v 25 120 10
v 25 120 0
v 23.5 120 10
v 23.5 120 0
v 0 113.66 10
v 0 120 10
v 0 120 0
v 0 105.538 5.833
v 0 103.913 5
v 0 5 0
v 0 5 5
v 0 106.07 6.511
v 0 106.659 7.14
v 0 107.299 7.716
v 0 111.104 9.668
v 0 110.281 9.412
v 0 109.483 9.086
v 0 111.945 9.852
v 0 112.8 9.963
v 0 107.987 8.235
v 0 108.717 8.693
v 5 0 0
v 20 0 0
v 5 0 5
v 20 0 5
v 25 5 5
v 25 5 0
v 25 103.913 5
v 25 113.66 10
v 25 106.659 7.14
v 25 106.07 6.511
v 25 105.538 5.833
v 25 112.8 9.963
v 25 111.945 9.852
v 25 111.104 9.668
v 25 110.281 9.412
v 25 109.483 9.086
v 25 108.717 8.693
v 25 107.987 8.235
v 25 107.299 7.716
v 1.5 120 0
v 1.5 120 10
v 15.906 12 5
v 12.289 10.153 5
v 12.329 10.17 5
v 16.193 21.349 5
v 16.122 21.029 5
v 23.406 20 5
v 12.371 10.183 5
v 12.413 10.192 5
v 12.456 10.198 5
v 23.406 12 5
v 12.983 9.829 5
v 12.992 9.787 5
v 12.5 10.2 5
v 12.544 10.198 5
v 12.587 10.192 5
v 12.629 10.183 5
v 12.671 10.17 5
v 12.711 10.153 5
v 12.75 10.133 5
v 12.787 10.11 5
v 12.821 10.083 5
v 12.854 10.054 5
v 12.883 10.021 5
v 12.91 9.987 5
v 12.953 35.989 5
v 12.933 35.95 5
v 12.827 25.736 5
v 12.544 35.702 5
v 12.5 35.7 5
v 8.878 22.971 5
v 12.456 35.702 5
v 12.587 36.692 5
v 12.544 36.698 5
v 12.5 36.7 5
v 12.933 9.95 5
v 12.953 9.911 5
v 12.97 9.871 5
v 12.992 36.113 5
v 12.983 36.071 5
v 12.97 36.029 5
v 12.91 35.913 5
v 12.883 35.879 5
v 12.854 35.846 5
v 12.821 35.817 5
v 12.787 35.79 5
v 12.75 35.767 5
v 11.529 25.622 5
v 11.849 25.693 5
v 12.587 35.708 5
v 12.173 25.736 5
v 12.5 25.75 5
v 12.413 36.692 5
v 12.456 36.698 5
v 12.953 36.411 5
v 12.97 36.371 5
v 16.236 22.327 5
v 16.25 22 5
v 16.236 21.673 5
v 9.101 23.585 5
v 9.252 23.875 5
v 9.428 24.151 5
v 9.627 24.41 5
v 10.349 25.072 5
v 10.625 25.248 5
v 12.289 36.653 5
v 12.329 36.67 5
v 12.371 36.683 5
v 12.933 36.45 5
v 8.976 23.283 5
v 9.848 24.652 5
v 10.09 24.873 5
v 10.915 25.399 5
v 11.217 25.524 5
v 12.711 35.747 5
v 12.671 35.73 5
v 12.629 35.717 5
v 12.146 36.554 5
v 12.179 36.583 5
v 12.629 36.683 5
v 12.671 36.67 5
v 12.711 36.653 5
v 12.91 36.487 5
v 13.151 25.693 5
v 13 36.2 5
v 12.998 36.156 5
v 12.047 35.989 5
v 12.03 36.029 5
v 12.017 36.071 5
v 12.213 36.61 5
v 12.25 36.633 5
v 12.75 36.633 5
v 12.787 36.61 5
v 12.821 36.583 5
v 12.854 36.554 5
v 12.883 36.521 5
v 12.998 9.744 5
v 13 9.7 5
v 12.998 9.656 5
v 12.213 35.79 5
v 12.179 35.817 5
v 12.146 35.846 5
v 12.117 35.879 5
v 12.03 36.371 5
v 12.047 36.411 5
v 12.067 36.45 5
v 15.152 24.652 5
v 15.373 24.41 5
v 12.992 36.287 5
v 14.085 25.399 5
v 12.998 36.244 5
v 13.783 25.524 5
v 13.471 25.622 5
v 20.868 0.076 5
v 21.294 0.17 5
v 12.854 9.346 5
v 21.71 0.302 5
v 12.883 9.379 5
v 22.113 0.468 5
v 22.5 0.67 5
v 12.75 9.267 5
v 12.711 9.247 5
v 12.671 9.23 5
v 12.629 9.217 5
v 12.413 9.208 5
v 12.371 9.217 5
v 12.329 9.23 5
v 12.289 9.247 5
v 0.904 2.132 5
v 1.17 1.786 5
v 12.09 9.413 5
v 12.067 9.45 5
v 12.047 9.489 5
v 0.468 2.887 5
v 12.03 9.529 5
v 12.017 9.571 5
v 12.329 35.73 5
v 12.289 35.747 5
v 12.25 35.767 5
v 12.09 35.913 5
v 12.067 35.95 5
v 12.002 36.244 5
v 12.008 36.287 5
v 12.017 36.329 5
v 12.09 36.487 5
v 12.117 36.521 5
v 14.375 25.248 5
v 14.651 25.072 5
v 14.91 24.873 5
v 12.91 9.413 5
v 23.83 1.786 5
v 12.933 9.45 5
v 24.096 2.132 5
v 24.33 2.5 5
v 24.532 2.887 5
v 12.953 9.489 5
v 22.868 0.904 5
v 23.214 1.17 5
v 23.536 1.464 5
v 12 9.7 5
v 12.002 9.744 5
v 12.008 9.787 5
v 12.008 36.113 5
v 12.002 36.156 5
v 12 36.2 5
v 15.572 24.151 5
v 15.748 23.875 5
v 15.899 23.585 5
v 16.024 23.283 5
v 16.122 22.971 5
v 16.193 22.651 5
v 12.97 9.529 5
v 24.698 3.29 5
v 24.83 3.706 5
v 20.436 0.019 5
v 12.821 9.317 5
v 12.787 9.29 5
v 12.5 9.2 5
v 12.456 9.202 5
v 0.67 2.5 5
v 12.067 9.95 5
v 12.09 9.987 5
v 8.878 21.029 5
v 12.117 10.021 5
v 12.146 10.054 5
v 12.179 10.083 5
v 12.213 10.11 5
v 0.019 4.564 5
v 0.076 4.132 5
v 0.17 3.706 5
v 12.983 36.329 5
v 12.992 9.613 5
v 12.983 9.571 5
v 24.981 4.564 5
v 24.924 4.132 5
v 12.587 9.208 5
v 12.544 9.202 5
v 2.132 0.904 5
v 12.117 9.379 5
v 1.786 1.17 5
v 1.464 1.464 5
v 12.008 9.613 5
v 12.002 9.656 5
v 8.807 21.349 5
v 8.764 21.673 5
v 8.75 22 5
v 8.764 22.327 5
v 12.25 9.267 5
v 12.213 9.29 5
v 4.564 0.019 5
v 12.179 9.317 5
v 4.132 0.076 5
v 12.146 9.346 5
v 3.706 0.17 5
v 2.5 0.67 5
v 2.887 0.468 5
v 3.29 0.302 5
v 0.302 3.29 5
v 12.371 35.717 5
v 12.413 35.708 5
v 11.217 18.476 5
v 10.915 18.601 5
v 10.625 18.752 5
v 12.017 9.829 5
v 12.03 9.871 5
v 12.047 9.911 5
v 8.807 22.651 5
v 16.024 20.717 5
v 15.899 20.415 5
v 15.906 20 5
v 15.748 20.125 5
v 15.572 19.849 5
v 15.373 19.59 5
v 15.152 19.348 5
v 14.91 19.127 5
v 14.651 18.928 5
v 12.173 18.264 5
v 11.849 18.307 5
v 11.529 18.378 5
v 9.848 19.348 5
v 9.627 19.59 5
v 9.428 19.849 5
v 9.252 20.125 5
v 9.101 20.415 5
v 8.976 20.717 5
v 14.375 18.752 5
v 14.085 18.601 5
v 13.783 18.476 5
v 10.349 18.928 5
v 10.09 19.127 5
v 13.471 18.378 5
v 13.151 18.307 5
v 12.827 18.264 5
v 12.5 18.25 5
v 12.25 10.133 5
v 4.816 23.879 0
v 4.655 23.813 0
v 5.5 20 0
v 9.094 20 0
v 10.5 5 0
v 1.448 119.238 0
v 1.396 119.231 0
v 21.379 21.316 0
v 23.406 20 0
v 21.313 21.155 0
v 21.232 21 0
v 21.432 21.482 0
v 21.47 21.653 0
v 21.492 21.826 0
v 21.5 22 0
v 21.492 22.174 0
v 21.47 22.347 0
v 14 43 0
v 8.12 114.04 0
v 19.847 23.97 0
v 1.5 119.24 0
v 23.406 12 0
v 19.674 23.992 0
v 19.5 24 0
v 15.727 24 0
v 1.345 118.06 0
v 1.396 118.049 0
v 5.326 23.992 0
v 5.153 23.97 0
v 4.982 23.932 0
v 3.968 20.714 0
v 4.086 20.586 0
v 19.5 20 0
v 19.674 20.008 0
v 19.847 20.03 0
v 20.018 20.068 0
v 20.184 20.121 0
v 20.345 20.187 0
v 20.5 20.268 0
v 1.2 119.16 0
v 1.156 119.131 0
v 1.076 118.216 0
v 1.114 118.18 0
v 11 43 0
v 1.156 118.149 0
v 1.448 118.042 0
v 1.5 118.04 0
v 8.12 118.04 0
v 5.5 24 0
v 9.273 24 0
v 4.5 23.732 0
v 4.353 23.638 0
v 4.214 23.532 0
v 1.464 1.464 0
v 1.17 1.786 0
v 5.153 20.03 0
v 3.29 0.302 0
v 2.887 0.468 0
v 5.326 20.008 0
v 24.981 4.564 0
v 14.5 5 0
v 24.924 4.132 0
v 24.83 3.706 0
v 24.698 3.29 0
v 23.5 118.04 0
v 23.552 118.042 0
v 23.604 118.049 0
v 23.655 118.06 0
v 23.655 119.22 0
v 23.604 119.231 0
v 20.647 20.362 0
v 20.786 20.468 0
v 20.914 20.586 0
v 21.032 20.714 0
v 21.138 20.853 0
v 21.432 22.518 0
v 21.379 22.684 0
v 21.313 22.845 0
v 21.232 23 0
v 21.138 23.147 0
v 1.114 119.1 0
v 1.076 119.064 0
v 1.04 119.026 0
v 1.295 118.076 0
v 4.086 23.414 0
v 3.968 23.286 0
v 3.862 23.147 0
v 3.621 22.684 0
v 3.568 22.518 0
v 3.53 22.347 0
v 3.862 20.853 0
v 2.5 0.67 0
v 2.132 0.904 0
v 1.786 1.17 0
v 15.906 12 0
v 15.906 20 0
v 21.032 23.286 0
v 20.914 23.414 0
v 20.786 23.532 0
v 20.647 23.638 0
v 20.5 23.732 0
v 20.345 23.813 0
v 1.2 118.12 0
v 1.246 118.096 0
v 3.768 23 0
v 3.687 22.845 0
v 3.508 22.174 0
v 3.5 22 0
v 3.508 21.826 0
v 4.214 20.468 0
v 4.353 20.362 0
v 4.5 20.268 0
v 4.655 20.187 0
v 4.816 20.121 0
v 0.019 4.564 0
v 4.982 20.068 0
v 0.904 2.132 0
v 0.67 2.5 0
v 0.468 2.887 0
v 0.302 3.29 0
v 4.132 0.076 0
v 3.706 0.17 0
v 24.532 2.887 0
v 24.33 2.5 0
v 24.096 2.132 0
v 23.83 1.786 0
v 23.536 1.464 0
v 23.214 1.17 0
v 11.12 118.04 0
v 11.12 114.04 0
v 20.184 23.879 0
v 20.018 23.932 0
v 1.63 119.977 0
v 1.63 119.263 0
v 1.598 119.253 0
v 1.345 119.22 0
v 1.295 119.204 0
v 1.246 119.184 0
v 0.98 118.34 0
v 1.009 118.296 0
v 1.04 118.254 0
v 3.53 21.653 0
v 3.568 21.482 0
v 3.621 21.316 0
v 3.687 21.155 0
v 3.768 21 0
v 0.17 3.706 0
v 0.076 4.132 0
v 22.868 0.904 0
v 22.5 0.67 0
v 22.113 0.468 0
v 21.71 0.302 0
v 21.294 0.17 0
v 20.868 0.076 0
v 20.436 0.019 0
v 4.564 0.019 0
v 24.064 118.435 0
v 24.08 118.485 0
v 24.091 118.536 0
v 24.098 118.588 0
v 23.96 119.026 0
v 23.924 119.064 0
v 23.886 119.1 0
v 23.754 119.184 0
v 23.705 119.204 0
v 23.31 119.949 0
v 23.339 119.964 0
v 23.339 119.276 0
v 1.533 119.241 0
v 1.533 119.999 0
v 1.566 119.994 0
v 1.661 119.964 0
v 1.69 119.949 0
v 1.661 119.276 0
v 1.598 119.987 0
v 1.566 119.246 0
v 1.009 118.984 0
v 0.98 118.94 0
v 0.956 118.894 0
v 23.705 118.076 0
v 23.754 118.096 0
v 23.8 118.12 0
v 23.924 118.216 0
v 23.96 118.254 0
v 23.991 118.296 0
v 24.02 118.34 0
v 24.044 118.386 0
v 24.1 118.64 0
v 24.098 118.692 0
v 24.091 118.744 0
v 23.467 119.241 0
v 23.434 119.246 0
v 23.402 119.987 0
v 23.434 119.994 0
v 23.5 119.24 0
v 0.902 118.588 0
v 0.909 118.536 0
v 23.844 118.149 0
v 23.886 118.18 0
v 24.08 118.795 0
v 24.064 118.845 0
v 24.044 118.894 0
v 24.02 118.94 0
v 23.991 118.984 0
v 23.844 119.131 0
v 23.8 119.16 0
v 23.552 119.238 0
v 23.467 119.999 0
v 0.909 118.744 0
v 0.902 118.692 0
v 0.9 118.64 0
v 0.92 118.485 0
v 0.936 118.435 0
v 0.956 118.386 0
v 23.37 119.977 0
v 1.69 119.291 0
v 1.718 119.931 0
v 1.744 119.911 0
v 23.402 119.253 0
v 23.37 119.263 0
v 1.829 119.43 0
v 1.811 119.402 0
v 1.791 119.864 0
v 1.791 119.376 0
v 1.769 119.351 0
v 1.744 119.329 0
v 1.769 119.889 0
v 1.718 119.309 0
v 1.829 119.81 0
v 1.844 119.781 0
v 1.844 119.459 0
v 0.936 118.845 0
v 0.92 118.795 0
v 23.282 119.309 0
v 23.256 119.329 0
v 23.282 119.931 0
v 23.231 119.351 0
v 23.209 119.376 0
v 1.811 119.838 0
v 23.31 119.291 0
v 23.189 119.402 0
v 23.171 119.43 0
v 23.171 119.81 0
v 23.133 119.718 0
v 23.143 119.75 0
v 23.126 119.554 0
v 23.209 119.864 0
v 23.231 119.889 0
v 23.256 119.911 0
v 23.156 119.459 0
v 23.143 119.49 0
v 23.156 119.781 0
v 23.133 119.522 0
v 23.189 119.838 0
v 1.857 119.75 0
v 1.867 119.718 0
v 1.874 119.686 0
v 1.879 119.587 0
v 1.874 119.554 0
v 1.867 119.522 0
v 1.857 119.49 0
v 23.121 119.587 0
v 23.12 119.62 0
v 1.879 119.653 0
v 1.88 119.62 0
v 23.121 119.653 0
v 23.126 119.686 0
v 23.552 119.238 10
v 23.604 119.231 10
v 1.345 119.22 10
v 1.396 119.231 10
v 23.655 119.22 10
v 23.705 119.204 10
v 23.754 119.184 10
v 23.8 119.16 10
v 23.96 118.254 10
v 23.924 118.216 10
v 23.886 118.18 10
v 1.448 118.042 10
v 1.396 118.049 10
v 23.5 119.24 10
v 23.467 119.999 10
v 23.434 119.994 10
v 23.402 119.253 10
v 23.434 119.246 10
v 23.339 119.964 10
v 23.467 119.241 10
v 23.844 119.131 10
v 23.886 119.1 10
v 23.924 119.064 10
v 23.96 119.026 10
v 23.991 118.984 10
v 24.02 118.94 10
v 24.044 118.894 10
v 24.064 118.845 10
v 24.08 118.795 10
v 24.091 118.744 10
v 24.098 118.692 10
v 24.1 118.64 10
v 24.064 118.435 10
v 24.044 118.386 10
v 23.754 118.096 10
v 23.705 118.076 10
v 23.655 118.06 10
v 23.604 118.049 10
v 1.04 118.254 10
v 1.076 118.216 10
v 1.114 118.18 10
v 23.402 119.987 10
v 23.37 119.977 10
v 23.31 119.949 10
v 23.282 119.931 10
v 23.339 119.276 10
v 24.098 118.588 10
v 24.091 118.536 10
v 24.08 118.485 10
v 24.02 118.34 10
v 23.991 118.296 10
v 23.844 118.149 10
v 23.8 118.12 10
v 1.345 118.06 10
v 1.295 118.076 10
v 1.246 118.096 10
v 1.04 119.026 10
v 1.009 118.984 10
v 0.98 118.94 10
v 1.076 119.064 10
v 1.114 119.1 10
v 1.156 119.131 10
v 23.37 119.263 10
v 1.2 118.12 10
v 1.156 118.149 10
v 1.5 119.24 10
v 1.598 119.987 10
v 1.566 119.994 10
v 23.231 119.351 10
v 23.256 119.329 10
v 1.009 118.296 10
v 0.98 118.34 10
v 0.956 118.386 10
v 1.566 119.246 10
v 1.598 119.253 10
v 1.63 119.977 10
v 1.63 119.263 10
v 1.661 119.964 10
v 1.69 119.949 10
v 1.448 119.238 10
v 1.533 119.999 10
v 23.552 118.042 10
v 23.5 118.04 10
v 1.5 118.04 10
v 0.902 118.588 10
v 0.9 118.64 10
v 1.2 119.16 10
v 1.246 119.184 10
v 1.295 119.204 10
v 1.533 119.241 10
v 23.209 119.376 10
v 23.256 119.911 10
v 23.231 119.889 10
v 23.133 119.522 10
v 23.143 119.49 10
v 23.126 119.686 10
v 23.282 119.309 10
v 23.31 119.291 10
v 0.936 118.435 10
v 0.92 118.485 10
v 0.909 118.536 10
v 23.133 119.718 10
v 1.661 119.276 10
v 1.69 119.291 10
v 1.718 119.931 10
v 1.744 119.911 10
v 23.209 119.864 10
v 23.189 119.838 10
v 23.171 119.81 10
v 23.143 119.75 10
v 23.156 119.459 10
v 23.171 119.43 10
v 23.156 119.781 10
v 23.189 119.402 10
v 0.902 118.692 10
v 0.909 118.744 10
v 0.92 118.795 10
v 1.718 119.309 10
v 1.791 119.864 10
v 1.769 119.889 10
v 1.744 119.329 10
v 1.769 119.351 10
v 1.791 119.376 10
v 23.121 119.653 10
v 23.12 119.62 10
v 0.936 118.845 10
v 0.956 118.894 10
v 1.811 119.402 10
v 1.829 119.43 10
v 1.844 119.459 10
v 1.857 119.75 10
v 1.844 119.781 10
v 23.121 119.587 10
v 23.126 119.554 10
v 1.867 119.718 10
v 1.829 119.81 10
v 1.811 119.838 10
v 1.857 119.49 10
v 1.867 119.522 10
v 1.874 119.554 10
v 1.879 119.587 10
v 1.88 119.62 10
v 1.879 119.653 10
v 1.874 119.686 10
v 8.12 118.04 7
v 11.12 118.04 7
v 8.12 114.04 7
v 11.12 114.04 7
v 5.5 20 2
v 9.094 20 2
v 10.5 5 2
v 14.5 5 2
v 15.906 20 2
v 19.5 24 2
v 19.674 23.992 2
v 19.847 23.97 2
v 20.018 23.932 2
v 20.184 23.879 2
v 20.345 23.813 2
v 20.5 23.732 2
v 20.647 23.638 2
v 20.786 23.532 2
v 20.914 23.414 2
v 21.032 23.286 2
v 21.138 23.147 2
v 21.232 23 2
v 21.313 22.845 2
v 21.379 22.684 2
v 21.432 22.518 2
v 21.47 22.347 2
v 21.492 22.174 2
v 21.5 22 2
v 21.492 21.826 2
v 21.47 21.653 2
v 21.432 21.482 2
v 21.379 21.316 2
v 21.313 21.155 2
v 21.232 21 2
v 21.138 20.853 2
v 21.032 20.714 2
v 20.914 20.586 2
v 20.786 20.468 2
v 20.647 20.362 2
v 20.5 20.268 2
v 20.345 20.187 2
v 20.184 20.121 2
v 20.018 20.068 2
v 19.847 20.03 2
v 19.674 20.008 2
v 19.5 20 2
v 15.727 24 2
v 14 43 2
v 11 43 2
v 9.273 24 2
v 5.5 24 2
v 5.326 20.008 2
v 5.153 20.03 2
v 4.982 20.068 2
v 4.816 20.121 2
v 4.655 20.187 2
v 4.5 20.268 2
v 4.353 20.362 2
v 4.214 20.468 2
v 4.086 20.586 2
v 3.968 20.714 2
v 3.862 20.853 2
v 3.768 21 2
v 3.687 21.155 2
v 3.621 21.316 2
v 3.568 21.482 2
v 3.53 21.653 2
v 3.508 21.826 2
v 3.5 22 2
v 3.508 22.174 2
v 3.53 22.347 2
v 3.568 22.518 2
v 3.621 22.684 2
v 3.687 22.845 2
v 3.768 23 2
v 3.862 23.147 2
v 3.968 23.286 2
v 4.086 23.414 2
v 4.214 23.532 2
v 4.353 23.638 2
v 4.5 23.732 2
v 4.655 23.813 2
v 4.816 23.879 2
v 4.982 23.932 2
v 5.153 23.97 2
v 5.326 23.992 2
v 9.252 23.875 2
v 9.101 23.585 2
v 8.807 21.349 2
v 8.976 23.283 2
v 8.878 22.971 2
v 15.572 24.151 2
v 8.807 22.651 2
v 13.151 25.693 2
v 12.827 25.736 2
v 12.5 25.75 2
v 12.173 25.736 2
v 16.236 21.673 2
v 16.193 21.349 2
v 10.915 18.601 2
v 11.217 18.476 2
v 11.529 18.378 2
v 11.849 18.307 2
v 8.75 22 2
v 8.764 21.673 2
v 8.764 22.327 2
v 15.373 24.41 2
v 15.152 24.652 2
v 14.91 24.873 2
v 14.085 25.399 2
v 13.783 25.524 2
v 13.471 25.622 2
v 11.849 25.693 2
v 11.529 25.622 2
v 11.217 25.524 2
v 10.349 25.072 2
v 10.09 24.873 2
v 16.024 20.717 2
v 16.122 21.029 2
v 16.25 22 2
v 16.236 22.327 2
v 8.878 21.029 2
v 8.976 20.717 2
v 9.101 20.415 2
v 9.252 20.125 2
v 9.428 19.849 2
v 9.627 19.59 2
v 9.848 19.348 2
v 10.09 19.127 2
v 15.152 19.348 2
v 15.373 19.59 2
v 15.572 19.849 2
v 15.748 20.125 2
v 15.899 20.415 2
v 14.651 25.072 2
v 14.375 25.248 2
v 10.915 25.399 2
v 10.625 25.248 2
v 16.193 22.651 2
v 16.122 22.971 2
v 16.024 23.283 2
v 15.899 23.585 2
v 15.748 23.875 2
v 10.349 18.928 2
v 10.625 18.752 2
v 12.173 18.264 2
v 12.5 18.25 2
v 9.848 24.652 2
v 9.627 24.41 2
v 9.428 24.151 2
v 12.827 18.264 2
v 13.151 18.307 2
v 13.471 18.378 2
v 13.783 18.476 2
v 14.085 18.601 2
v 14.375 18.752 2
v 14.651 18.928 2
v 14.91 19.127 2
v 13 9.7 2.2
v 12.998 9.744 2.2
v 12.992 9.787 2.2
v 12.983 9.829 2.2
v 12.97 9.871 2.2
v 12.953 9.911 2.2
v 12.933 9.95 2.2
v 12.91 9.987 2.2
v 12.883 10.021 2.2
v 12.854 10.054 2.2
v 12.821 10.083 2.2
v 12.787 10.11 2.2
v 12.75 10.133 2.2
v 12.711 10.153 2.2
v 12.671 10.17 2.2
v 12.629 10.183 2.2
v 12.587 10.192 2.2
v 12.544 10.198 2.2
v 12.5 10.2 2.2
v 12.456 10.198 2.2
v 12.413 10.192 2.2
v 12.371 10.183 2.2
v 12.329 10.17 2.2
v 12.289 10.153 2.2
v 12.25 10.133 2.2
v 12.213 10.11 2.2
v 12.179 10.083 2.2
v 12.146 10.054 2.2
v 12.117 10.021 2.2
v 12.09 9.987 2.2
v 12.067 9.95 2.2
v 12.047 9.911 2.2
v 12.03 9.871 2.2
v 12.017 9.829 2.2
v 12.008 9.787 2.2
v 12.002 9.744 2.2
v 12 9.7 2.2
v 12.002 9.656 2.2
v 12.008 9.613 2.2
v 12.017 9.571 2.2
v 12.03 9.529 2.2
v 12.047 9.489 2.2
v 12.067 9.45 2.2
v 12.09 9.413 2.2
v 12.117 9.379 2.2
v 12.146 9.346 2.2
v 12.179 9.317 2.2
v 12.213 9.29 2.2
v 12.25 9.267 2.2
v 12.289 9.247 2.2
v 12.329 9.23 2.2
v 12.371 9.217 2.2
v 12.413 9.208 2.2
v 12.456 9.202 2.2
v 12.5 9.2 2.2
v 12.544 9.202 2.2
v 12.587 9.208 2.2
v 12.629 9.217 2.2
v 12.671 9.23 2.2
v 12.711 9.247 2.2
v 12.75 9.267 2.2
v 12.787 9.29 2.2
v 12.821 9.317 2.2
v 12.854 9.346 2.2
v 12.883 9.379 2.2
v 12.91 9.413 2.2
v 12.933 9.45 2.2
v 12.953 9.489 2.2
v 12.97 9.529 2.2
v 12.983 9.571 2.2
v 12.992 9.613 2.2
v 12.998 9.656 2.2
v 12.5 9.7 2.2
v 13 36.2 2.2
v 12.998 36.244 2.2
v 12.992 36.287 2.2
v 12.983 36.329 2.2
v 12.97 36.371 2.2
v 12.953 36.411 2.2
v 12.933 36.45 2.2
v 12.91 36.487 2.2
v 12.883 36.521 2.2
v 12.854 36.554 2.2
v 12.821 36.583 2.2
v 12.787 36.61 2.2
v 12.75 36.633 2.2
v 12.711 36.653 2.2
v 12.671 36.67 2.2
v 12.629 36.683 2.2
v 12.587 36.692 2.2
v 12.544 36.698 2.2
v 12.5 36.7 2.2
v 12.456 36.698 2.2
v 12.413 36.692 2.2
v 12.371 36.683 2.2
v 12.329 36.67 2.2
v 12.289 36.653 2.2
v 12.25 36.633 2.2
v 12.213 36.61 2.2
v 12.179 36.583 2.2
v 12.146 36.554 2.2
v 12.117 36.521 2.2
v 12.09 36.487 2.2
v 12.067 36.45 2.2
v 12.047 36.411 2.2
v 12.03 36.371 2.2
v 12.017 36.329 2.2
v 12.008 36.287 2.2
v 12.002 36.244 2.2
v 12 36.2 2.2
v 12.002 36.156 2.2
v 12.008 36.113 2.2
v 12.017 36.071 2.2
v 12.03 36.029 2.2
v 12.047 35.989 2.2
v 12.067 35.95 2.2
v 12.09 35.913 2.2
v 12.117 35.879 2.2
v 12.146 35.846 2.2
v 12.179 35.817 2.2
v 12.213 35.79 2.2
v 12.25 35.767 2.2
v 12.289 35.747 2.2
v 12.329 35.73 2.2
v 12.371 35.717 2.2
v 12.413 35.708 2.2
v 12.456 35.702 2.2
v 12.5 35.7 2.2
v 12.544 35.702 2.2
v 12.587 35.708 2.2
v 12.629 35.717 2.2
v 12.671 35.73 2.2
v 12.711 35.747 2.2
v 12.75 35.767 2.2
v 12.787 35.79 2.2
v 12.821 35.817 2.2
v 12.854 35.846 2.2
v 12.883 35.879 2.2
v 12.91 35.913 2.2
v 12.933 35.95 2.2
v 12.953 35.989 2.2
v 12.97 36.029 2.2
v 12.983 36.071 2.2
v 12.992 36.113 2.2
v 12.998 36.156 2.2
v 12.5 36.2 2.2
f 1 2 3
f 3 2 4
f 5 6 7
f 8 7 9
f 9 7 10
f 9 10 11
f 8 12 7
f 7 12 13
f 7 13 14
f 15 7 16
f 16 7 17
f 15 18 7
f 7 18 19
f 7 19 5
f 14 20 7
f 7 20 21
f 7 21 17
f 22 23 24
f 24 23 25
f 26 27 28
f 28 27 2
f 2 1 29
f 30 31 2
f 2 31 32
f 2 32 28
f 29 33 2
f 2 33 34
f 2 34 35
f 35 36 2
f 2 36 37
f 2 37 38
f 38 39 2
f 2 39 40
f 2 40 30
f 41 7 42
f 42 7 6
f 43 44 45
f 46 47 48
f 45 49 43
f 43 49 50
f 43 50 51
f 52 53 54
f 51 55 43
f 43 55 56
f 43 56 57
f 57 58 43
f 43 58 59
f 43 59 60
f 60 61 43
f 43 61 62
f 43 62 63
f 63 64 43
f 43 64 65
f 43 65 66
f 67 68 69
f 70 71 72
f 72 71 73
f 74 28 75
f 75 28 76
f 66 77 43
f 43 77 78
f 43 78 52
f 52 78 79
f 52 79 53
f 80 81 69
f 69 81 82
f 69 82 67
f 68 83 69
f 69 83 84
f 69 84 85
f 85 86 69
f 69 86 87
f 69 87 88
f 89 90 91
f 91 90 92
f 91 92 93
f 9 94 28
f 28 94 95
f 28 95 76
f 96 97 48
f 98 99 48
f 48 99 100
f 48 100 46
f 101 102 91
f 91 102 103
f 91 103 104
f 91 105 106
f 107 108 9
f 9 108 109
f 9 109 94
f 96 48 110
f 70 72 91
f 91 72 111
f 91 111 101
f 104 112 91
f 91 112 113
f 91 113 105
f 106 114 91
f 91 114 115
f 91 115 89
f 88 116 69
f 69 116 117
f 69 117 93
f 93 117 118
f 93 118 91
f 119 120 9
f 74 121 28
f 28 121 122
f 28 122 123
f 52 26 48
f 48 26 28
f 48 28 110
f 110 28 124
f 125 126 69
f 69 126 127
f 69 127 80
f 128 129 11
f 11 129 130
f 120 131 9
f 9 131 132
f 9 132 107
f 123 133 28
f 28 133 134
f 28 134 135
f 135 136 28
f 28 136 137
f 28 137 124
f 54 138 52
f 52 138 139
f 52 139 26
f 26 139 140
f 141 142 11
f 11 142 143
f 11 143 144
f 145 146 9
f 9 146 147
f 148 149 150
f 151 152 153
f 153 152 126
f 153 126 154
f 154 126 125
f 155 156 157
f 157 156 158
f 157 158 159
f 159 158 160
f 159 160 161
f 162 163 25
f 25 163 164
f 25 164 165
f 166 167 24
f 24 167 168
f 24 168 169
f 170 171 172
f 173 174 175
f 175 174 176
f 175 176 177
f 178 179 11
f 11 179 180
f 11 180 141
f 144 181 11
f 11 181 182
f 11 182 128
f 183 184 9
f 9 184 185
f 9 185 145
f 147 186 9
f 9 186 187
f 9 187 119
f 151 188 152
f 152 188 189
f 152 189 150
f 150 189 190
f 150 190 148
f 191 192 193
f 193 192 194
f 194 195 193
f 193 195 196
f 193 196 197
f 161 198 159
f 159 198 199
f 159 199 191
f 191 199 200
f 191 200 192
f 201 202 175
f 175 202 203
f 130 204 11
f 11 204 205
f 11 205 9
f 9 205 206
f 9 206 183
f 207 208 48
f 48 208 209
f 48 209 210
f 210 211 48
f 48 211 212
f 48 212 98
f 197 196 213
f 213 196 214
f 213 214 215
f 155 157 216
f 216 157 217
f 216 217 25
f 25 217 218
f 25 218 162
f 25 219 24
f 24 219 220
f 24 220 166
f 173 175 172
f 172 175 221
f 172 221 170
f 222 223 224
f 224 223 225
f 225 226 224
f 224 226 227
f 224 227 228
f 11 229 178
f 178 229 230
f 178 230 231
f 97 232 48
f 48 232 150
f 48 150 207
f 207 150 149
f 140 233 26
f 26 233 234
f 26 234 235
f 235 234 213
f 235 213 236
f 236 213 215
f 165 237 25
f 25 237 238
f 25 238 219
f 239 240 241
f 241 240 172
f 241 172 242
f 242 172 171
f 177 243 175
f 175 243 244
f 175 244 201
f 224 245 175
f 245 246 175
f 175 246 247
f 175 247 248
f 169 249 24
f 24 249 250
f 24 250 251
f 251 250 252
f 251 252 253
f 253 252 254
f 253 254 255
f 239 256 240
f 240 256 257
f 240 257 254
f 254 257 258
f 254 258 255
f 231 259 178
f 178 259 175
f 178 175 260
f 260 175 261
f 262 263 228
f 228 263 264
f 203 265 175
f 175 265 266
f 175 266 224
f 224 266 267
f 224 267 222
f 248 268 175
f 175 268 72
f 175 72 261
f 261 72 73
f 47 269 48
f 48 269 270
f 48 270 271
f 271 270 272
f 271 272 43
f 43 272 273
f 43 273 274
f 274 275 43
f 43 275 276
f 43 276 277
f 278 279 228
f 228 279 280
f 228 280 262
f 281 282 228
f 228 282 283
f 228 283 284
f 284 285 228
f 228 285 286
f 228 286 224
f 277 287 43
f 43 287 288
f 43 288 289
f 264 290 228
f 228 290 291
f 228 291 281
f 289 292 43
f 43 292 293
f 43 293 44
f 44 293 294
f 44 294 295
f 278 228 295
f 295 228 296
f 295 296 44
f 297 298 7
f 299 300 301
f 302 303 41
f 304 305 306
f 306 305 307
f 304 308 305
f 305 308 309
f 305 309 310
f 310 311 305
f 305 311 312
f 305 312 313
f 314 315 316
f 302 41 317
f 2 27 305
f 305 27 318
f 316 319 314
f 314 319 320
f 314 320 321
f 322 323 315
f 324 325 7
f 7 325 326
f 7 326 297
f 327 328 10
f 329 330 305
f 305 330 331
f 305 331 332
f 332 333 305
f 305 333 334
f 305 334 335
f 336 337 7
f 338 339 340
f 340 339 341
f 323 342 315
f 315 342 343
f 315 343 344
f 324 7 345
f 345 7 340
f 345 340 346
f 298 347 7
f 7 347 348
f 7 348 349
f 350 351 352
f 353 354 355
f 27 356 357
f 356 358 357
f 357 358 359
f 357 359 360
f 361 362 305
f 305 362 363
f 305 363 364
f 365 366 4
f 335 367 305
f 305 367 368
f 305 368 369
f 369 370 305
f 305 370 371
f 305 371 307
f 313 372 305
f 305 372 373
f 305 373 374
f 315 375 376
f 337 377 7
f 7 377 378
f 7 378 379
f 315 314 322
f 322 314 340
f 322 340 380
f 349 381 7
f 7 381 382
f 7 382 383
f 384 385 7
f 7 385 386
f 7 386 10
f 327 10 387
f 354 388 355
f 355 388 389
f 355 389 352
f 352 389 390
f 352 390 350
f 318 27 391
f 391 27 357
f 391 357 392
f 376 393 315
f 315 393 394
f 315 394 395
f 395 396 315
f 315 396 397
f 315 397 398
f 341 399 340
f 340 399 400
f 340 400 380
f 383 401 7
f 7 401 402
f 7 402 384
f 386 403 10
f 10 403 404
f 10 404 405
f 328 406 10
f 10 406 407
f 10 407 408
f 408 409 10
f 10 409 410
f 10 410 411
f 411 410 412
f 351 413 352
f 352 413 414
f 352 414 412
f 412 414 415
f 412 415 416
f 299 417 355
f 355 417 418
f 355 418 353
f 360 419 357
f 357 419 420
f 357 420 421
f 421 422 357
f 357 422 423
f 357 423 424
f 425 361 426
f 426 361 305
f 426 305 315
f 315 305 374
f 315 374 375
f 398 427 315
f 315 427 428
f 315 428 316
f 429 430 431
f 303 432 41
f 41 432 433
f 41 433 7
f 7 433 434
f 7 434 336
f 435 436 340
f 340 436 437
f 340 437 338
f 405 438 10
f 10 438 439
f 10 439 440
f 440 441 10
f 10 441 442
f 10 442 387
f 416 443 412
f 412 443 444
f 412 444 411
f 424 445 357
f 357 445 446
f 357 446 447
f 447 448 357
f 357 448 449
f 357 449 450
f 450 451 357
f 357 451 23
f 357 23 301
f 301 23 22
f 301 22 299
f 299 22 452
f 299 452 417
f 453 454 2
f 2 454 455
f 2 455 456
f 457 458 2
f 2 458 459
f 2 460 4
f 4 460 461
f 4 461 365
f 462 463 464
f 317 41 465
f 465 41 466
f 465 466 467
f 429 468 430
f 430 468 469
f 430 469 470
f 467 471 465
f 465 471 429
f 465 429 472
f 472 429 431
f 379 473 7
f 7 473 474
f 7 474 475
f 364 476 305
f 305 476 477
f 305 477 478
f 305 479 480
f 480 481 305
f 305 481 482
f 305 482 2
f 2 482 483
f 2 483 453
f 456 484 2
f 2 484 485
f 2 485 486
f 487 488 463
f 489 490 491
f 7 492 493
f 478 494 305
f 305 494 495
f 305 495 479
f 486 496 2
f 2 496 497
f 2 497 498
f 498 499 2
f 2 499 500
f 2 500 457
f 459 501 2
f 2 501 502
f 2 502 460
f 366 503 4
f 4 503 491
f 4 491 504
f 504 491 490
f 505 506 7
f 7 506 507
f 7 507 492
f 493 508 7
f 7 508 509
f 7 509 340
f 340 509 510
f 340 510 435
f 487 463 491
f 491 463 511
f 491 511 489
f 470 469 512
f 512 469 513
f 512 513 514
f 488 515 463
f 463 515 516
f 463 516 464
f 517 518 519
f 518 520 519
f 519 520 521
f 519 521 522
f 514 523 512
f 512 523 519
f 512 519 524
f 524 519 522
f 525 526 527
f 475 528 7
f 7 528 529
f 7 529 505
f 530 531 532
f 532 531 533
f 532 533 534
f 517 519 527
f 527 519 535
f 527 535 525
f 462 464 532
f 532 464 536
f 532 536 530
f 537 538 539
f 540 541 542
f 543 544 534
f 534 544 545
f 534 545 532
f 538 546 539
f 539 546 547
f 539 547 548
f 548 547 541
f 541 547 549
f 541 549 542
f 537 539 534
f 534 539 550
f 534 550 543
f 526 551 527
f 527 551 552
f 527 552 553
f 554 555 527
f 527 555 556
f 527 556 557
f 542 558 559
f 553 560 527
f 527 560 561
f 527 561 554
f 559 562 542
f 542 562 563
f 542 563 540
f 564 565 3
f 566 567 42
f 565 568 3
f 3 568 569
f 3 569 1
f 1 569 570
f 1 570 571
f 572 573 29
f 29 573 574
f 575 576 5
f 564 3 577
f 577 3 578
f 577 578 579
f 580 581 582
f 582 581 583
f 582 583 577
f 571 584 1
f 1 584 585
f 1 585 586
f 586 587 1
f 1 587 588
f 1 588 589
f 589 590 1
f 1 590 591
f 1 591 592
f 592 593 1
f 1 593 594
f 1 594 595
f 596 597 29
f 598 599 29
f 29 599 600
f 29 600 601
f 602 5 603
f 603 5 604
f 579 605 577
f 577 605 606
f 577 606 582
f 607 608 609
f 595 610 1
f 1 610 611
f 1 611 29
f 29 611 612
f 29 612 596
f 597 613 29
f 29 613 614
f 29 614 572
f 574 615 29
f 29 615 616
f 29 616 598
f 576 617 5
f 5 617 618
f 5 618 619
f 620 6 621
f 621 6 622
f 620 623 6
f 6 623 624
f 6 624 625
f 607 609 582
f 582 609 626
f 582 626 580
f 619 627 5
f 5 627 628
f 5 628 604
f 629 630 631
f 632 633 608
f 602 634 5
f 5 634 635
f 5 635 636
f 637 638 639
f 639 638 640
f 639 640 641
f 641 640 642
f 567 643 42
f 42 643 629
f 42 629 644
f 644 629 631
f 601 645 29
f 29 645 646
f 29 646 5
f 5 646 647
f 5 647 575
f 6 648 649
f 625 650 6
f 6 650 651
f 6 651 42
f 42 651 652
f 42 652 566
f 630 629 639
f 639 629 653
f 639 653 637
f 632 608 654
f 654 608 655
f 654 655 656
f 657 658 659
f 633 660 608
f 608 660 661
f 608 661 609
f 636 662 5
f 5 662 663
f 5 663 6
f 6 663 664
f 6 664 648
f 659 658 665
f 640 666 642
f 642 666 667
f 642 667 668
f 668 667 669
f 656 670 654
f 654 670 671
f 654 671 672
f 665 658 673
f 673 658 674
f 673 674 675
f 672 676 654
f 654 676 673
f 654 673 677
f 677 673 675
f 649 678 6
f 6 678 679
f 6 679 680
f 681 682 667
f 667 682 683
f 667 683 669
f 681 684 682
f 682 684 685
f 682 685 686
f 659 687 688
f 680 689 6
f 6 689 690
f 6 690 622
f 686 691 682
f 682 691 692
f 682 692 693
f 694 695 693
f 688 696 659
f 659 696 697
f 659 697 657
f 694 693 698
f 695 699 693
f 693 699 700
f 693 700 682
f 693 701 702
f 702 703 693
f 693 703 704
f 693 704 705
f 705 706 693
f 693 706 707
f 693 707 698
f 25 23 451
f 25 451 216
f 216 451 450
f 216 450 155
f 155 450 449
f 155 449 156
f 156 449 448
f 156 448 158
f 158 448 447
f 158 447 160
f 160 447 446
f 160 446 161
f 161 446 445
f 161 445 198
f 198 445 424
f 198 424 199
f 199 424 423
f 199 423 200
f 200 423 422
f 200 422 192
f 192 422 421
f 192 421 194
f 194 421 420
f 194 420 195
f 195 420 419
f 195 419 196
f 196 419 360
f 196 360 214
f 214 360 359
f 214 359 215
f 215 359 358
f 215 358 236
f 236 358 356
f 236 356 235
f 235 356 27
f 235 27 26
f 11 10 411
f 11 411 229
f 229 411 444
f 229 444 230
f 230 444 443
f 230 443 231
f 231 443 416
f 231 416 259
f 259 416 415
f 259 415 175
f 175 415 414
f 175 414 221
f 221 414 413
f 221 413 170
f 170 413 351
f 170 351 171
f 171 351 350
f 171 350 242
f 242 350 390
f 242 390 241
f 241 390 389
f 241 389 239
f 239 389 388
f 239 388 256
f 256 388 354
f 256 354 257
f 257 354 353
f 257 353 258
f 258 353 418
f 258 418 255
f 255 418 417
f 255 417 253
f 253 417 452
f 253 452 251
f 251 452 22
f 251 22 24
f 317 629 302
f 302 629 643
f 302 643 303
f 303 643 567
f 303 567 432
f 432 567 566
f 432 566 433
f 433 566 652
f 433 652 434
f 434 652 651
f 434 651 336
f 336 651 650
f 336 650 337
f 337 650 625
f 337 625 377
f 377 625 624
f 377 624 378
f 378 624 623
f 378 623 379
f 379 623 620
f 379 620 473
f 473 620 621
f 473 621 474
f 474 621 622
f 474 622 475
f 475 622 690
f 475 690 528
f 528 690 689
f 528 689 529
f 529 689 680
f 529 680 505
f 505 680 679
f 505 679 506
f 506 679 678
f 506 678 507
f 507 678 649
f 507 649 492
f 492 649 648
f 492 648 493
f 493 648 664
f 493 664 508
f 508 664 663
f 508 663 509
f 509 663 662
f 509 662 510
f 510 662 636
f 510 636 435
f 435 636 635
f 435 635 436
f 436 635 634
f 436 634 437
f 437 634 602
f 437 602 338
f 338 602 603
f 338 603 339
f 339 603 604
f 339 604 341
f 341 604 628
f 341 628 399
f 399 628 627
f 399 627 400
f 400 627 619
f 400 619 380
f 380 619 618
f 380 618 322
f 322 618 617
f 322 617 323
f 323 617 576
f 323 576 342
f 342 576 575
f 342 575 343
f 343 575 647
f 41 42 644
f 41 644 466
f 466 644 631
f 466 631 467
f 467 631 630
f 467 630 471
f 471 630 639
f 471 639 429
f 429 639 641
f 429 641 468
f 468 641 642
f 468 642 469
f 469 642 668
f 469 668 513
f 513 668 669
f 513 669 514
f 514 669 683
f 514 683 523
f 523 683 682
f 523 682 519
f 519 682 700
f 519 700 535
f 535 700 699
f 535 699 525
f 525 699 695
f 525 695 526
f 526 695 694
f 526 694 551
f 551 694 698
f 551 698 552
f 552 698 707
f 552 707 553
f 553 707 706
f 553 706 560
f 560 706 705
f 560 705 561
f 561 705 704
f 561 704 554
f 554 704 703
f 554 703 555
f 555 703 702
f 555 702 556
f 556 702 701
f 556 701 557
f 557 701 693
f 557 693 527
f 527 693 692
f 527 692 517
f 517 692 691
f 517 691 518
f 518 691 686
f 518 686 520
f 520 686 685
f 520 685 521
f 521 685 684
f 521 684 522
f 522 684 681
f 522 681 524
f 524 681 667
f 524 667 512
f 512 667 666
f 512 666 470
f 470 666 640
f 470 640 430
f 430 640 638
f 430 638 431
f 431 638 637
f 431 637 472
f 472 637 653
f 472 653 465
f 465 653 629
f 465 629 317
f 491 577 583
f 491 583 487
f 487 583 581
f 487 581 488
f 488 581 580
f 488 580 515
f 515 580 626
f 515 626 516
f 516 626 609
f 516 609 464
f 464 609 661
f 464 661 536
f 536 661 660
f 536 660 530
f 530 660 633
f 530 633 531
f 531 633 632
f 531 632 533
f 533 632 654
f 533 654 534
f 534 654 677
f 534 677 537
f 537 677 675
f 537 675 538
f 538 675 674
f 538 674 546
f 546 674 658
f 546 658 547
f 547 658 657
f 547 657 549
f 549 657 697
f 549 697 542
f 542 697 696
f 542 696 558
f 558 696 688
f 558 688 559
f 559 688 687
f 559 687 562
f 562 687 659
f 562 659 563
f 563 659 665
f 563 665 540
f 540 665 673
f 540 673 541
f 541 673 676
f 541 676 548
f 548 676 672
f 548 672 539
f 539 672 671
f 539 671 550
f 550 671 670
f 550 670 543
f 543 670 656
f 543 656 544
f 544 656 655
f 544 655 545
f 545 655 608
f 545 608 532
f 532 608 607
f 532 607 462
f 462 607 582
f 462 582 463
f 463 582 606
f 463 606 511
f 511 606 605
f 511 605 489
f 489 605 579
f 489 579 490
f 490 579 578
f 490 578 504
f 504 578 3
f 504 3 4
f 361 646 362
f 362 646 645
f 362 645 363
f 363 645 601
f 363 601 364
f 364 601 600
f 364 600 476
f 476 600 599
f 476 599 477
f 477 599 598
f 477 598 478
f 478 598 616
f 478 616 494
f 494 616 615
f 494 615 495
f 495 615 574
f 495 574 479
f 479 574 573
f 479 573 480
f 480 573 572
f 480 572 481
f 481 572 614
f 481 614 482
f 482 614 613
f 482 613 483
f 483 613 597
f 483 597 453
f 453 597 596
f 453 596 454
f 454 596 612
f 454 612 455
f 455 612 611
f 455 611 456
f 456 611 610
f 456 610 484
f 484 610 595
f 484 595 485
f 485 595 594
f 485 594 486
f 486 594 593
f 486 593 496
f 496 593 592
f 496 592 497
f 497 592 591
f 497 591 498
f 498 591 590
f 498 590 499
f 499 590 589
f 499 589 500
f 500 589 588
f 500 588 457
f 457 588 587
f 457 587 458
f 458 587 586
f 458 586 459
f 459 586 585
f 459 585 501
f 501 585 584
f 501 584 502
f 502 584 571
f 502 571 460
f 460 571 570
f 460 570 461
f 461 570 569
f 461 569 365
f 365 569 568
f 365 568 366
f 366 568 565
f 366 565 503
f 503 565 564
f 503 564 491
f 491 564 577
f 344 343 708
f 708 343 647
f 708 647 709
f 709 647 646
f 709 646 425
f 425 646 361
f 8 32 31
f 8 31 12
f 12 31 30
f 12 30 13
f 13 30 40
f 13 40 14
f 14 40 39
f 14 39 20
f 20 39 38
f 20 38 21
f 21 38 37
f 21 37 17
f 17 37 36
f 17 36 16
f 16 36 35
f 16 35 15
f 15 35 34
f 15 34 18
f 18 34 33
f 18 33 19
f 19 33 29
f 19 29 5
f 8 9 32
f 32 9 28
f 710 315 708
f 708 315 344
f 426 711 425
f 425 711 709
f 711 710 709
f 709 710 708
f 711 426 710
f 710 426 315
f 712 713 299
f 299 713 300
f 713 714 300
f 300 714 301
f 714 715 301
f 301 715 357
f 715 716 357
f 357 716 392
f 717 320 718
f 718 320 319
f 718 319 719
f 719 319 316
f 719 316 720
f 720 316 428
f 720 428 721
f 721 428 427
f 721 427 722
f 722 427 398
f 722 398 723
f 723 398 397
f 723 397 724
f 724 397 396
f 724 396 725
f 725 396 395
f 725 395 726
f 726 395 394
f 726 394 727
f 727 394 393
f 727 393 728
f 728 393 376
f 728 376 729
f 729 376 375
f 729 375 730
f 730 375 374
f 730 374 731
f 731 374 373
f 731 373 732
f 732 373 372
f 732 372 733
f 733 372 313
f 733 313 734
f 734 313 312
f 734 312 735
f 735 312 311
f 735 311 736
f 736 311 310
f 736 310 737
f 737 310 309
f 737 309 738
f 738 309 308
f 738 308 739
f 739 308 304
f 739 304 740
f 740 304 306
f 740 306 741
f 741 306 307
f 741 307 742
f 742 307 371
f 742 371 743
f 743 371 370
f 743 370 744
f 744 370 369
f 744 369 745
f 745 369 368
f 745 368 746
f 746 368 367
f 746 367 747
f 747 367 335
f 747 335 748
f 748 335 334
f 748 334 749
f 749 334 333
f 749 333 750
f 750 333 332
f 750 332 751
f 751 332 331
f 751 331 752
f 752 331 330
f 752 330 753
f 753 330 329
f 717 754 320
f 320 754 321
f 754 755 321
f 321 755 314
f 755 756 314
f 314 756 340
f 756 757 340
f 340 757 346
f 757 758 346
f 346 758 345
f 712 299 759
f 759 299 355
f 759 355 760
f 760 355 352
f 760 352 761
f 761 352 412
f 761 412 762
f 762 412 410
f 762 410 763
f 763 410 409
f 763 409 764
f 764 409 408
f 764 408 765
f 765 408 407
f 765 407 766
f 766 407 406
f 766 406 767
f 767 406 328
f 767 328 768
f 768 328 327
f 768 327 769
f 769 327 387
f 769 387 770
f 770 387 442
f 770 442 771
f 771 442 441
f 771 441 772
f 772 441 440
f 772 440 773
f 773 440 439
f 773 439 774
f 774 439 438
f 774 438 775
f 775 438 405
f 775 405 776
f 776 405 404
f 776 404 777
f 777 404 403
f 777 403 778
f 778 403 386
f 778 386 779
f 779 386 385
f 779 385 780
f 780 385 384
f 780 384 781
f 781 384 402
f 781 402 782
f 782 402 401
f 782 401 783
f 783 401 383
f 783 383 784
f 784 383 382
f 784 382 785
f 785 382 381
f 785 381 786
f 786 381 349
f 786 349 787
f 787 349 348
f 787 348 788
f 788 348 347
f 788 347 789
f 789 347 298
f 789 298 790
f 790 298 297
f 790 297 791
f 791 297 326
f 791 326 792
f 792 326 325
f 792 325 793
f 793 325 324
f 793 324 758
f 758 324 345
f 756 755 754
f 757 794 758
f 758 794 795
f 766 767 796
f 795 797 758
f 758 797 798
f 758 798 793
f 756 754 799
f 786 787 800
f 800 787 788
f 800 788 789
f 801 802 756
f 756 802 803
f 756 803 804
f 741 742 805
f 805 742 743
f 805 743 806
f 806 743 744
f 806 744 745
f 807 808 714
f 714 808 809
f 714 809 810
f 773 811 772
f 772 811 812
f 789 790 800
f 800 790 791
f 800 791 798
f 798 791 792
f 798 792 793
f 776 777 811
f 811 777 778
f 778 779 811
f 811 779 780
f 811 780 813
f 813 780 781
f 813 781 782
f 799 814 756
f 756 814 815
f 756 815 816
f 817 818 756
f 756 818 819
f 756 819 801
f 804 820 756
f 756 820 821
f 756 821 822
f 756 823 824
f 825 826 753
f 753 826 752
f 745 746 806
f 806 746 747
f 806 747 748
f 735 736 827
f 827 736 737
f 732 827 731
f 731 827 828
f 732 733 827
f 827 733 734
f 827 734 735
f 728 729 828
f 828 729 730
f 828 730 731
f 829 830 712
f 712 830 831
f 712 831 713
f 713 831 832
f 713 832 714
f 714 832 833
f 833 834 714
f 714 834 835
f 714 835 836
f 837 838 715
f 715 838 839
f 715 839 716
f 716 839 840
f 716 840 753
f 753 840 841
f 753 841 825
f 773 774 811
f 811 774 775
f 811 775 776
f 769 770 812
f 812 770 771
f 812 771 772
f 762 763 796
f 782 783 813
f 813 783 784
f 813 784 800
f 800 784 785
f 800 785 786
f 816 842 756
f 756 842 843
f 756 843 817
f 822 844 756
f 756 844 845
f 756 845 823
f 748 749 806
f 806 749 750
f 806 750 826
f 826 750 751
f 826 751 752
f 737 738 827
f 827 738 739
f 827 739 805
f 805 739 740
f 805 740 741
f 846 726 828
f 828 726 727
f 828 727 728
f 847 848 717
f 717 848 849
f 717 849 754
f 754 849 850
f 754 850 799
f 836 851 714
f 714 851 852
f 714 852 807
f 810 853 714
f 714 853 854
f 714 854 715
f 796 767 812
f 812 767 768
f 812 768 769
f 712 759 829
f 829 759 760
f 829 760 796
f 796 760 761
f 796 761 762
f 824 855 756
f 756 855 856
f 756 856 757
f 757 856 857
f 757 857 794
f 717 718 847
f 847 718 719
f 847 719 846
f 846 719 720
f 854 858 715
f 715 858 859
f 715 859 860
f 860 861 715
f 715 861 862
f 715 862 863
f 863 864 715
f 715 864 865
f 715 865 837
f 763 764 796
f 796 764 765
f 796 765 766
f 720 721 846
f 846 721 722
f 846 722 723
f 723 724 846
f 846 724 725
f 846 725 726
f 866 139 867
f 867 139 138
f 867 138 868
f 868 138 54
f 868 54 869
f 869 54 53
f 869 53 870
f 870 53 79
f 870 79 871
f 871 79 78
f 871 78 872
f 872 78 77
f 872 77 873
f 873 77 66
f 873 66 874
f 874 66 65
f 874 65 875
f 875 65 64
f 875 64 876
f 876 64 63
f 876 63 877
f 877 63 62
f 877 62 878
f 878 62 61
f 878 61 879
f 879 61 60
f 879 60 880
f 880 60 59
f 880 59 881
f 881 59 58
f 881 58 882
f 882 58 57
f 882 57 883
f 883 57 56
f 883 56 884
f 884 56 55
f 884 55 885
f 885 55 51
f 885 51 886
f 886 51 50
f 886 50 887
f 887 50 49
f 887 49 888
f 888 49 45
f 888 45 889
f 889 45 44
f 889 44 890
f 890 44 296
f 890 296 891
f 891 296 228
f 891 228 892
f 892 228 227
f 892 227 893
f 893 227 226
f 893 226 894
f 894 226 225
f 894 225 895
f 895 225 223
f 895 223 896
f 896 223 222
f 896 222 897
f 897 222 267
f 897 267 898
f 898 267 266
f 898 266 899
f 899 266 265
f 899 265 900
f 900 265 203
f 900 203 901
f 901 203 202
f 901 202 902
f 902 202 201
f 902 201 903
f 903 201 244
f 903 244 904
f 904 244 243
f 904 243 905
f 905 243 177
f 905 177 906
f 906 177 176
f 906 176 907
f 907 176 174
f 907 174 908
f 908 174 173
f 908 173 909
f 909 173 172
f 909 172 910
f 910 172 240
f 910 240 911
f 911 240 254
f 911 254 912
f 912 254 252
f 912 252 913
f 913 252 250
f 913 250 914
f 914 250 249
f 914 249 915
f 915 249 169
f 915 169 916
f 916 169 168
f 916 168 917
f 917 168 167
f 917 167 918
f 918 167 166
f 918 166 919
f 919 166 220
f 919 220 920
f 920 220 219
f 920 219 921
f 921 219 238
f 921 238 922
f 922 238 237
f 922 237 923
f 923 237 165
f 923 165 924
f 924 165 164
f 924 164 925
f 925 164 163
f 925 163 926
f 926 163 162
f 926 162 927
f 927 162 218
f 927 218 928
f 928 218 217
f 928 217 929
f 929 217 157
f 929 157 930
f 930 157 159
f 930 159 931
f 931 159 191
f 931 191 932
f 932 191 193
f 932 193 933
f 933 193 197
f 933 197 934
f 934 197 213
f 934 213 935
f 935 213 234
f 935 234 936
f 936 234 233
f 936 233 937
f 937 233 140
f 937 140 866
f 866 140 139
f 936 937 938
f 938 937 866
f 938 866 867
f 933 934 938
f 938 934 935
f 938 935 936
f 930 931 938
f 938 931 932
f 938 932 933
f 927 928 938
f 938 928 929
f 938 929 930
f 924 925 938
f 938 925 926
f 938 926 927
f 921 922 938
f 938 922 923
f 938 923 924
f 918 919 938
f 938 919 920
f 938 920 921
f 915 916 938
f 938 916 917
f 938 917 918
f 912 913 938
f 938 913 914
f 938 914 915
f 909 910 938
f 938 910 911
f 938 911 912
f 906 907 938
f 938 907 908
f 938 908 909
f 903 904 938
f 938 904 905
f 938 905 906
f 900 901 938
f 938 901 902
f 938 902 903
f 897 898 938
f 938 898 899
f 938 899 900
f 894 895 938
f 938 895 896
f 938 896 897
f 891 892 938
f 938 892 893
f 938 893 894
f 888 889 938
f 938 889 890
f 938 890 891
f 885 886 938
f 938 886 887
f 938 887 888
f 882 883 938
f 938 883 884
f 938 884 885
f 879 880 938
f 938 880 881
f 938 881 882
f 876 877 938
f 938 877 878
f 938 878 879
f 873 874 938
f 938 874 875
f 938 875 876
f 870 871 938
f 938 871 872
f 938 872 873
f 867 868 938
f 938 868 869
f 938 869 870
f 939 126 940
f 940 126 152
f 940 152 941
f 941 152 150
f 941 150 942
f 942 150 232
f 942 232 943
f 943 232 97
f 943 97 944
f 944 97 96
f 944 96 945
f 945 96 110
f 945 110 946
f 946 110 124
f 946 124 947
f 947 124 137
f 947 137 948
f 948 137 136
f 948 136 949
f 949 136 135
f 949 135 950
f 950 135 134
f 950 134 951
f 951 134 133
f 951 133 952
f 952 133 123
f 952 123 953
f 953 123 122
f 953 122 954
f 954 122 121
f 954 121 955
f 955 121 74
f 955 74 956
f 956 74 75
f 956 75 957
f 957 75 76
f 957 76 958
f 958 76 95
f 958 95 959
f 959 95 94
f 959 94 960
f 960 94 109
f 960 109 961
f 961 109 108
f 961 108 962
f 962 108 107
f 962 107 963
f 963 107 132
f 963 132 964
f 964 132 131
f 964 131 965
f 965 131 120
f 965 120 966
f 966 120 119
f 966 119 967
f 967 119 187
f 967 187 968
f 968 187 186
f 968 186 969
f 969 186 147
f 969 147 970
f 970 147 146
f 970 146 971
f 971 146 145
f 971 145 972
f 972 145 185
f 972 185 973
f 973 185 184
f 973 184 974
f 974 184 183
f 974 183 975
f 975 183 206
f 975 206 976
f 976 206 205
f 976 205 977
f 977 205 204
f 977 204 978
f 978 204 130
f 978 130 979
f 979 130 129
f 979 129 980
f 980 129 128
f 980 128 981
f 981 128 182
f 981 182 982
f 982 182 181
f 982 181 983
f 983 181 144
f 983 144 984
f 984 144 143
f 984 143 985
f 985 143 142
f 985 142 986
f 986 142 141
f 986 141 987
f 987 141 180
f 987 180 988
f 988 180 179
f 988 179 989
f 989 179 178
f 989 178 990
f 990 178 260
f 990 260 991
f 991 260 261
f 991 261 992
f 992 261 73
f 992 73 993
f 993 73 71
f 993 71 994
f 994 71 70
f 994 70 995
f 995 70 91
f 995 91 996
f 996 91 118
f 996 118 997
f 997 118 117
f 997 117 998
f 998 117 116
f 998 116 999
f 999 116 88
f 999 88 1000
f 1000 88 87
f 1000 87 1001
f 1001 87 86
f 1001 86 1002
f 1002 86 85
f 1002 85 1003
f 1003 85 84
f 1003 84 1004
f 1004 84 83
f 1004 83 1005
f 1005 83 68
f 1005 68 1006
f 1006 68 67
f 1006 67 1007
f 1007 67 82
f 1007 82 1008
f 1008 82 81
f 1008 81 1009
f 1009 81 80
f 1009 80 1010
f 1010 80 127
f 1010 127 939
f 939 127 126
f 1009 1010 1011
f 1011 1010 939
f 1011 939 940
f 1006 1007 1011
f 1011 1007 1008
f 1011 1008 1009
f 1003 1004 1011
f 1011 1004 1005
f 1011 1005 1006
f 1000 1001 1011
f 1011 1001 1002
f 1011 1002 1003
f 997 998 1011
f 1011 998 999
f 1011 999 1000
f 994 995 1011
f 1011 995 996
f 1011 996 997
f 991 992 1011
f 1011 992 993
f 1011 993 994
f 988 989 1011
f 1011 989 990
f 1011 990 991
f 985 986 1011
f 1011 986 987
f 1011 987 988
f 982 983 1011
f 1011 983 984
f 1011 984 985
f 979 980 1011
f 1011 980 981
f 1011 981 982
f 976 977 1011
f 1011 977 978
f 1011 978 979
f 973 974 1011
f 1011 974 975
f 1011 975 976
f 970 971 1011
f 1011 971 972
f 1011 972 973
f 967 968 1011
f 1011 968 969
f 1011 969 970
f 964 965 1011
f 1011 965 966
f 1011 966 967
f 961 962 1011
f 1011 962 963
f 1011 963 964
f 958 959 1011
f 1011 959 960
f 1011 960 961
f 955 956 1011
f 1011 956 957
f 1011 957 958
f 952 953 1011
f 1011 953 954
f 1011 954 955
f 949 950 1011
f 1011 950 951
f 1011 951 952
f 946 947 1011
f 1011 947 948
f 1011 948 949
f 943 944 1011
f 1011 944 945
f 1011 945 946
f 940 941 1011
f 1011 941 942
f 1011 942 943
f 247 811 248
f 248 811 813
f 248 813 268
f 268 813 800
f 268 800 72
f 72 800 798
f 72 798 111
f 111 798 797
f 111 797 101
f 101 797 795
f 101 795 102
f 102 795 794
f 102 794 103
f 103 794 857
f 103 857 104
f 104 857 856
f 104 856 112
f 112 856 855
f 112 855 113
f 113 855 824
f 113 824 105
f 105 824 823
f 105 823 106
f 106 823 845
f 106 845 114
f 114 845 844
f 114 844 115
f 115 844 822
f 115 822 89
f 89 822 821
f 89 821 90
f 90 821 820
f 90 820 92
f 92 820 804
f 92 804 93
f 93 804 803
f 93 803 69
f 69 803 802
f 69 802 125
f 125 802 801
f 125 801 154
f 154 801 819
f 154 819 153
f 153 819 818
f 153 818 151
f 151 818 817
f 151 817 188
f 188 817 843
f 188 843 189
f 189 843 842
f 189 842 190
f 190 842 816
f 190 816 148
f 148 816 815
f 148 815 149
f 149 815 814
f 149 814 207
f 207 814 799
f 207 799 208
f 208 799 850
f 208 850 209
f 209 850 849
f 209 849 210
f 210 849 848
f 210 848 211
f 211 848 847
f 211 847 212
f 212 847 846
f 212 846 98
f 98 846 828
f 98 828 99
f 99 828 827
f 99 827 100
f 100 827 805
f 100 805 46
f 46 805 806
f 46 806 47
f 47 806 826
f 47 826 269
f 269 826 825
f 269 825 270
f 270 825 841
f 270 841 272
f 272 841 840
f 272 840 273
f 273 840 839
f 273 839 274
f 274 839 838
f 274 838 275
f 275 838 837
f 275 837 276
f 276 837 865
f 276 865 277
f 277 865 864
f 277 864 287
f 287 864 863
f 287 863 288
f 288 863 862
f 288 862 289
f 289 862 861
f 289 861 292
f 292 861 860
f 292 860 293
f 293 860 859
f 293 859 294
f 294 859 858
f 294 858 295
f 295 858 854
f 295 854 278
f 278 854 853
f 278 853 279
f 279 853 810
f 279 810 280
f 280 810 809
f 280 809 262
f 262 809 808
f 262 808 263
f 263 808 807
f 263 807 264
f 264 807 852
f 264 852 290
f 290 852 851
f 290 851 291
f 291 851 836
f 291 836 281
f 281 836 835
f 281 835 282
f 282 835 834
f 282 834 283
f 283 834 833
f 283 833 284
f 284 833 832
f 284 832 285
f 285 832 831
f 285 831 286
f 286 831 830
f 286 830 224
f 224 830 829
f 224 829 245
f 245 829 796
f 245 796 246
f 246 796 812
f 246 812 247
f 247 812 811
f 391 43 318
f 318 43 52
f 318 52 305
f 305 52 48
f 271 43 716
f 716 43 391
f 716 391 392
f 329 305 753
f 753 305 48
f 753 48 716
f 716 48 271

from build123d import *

# Parameters (mm, degrees)
SKICA1_W                 = 25
SKICA1_H                 = 120
P_IDAT_VYSUNUT_M1_DEPTH  = 5
SKICA2_W                 = 25
SKICA2_H                 = 15
P_IDAT_VYSUNUT_M2_DEPTH  = 10
ZAOBLIT5_R               = 5
ZAOBLIT6_R               = 5
ODEBRAT_VYSUNUT_M2_DEPTH = 20
ZAOBLIT7_R               = 10
SKICA4_W                 = 3
SKICA4_H                 = 7
ODEBRAT_VYSUNUT_M3_DEPTH = 4
ODEBRAT_VYSUNUT_M4_DEPTH = 2
ODEBRAT_START            = -3
SKICA7_R                 = 0.5
ODEBRAT_VYSUNUT_M5_DEPTH = 2.8
SKICA8_R                 = 3.75
ODEBRAT_VYSUNUT_M6_DEPTH = 123.837290755
SKICA9_W                 = 7.5
SKICA9_H                 = 8
ODEBRAT_VYSUNUT_M7_DEPTH = 123.983738762


with BuildPart() as part:
    # Skica1 → Přidat vysunutím1 (new body)
    with BuildSketch(Plane.XY):
        with Locations((12.5, 60)):
            Rectangle(SKICA1_W, SKICA1_H)
    extrude(amount=P_IDAT_VYSUNUT_M1_DEPTH)

    # Skica2 → Přidat vysunutím2 (add)
    with BuildSketch(Plane(origin=(0, 0, 0), x_dir=(-1, 0, 0), z_dir=(0, 0, -1))):
        with Locations((-12.5, 112.5)):
            Rectangle(SKICA2_W, SKICA2_H)
    extrude(amount=-P_IDAT_VYSUNUT_M2_DEPTH)

    # Zaoblit5
    zaoblit5_edges = [part.edges().sort_by_distance(p)[0] for p in [
        (25, 0, 2.5),
    ]]
    fillet(zaoblit5_edges, radius=ZAOBLIT5_R)

    # Zaoblit6
    zaoblit6_edges = [part.edges().sort_by_distance(p)[0] for p in [
        (0, 0, 2.5),
    ]]
    fillet(zaoblit6_edges, radius=ZAOBLIT6_R)

    # Skica3 → Odebrat vysunutím2 (cut)
    with BuildSketch(Plane.XY.offset(10)):
        with BuildLine():
            Line((1.5, 118.04), (23.5, 118.04))
            ThreePointArc((23.5, 118.04), (24.1, 118.64), (23.5, 119.24))
            ThreePointArc((23.5, 119.24), (23.12, 119.62), (23.5, 120))
            Line((23.5, 120), (1.5, 120))
            ThreePointArc((1.5, 120), (1.88, 119.62), (1.5, 119.24))
            ThreePointArc((1.5, 119.24), (0.9, 118.64), (1.5, 118.04))
        make_face()
    extrude(amount=-ODEBRAT_VYSUNUT_M2_DEPTH, mode=Mode.SUBTRACT)

    # Zaoblit7
    # the kernel refuses this fillet: 10 mm, written as the material it takes off along each edge
    with BuildSketch(Plane(origin=(-21.650635095, 105, 10), x_dir=(0, 0, -1), z_dir=(1, 0, 0))) as zaoblit7_piece_1:
        with BuildLine():
            CenterArc((10, 8.660254038), ZAOBLIT7_R, 180, 60)
            Line((0, 8.660254038), (-0.2, 8.660254038))
            Line((-0.2, 8.660254038), (-0.2, 0))
            Line((-0.2, 0), (0, -0.2))
            ThreePointArc((0, -0.2), (2.5, -0.2), (4.9, -0.173205081))
            Line((4.9, -0.173205081), (5, 0))
        make_face()
    extrude(amount=68.301270189, mode=Mode.SUBTRACT)

    # Zaoblit8
    # the kernel refuses this chamfer: 2 mm, written as the material it adds along each edge
    with BuildSketch(Plane(origin=(25, 105, 5), x_dir=(0, -0.9995029762160257, -0.031524602064212835), z_dir=(-1, 0, 0))) as zaoblit8_piece_1:
        with BuildLine():
            Line((1.15829653, 0), (-0.636224816, 0.850214013))
            Line((-0.636224816, 0.850214013), (-0.667962409, 0.825868064))
            ThreePointArc((-0.667962409, 0.825868064), (-0.324476703, 0.420675743), (-0.033993307, -0.021082104))
            Line((-0.033993307, -0.021082104), (0.001260984, -0.039980119))
            ThreePointArc((0.001260984, -0.039980119), (0.579833691, -0.021731775), (1.159557514, -0.039980119))
            Line((1.159557514, -0.039980119), (1.15829653, 0))
        make_face()
    extrude(amount=25)

    # Skica4 → Odebrat vysunutím3 (cut)
    with BuildSketch(Plane(origin=(0, 118.04, 0), x_dir=(1, 0, 0), z_dir=(0, 1, 0))):
        with Locations((9.62, -3.5)):
            Rectangle(SKICA4_W, SKICA4_H)
    extrude(amount=-ODEBRAT_VYSUNUT_M3_DEPTH, mode=Mode.SUBTRACT)

    # Skica5 → Odebrat vysunutím4 (cut)
    with BuildSketch(Plane.XY):
        Polygon((11, 43), (9.272727273, 24), (15.727272727, 24), (14, 43), align=None)
        with BuildLine():
            Line((5.5, 24), (5.5, 20))
            ThreePointArc((5.5, 20), (3.5, 22), (5.5, 24))
        make_face()
        Polygon((9.09375, 20), (9, 21), (9.272727273, 24), (5.5, 24), (5.5, 20), align=None)
        Polygon((9.272727273, 24), (9, 21), (16, 21), (15.727272727, 24), align=None)
        Polygon((16, 21), (9, 21), (9.09375, 20), (15.90625, 20), align=None)
        Polygon((15.727272727, 24), (16, 21), (15.90625, 20), (19.5, 20), (19.5, 24), align=None)
        with BuildLine():
            ThreePointArc((19.5, 24), (21.5, 22), (19.5, 20))
            Line((19.5, 20), (19.5, 24))
        make_face()
        Polygon((15.90625, 20), (9.09375, 20), (10.5, 5), (14.5, 5), align=None)
    extrude(amount=ODEBRAT_VYSUNUT_M4_DEPTH, mode=Mode.SUBTRACT)

    # Skica7 → Odebrat vysunutím5 (cut)
    with BuildSketch(Plane(origin=(0, 0, 2), x_dir=(-1, 0, 0), z_dir=(0, 0, -1)).offset(ODEBRAT_START)):
        with Locations(Location((-12.5, 36.2, 0), (0, 0, 180))):
            Circle(SKICA7_R)
        with Locations(Location((-12.5, 9.7, 0), (0, 0, 180))):
            Circle(SKICA7_R)
    extrude(amount=ODEBRAT_VYSUNUT_M5_DEPTH, mode=Mode.SUBTRACT)

    # Skica8 → Odebrat vysunutím6 (cut, through all)
    with BuildSketch(Plane(origin=(0, 0, 2), x_dir=(-1, 0, 0), z_dir=(0, 0, -1))):
        with Locations((-12.5, 22)):
            Circle(SKICA8_R)
    extrude(amount=-ODEBRAT_VYSUNUT_M6_DEPTH, mode=Mode.SUBTRACT)

    # Skica9 → Odebrat vysunutím7 (cut, through all)
    with BuildSketch(Plane(origin=(0, 0, 0), x_dir=(-1, 0, 0), z_dir=(0, 0, -1))):
        with Locations((-19.65625, 16)):
            Rectangle(SKICA9_W, SKICA9_H)
    extrude(amount=-ODEBRAT_VYSUNUT_M7_DEPTH, mode=Mode.SUBTRACT)


solid = part.part
